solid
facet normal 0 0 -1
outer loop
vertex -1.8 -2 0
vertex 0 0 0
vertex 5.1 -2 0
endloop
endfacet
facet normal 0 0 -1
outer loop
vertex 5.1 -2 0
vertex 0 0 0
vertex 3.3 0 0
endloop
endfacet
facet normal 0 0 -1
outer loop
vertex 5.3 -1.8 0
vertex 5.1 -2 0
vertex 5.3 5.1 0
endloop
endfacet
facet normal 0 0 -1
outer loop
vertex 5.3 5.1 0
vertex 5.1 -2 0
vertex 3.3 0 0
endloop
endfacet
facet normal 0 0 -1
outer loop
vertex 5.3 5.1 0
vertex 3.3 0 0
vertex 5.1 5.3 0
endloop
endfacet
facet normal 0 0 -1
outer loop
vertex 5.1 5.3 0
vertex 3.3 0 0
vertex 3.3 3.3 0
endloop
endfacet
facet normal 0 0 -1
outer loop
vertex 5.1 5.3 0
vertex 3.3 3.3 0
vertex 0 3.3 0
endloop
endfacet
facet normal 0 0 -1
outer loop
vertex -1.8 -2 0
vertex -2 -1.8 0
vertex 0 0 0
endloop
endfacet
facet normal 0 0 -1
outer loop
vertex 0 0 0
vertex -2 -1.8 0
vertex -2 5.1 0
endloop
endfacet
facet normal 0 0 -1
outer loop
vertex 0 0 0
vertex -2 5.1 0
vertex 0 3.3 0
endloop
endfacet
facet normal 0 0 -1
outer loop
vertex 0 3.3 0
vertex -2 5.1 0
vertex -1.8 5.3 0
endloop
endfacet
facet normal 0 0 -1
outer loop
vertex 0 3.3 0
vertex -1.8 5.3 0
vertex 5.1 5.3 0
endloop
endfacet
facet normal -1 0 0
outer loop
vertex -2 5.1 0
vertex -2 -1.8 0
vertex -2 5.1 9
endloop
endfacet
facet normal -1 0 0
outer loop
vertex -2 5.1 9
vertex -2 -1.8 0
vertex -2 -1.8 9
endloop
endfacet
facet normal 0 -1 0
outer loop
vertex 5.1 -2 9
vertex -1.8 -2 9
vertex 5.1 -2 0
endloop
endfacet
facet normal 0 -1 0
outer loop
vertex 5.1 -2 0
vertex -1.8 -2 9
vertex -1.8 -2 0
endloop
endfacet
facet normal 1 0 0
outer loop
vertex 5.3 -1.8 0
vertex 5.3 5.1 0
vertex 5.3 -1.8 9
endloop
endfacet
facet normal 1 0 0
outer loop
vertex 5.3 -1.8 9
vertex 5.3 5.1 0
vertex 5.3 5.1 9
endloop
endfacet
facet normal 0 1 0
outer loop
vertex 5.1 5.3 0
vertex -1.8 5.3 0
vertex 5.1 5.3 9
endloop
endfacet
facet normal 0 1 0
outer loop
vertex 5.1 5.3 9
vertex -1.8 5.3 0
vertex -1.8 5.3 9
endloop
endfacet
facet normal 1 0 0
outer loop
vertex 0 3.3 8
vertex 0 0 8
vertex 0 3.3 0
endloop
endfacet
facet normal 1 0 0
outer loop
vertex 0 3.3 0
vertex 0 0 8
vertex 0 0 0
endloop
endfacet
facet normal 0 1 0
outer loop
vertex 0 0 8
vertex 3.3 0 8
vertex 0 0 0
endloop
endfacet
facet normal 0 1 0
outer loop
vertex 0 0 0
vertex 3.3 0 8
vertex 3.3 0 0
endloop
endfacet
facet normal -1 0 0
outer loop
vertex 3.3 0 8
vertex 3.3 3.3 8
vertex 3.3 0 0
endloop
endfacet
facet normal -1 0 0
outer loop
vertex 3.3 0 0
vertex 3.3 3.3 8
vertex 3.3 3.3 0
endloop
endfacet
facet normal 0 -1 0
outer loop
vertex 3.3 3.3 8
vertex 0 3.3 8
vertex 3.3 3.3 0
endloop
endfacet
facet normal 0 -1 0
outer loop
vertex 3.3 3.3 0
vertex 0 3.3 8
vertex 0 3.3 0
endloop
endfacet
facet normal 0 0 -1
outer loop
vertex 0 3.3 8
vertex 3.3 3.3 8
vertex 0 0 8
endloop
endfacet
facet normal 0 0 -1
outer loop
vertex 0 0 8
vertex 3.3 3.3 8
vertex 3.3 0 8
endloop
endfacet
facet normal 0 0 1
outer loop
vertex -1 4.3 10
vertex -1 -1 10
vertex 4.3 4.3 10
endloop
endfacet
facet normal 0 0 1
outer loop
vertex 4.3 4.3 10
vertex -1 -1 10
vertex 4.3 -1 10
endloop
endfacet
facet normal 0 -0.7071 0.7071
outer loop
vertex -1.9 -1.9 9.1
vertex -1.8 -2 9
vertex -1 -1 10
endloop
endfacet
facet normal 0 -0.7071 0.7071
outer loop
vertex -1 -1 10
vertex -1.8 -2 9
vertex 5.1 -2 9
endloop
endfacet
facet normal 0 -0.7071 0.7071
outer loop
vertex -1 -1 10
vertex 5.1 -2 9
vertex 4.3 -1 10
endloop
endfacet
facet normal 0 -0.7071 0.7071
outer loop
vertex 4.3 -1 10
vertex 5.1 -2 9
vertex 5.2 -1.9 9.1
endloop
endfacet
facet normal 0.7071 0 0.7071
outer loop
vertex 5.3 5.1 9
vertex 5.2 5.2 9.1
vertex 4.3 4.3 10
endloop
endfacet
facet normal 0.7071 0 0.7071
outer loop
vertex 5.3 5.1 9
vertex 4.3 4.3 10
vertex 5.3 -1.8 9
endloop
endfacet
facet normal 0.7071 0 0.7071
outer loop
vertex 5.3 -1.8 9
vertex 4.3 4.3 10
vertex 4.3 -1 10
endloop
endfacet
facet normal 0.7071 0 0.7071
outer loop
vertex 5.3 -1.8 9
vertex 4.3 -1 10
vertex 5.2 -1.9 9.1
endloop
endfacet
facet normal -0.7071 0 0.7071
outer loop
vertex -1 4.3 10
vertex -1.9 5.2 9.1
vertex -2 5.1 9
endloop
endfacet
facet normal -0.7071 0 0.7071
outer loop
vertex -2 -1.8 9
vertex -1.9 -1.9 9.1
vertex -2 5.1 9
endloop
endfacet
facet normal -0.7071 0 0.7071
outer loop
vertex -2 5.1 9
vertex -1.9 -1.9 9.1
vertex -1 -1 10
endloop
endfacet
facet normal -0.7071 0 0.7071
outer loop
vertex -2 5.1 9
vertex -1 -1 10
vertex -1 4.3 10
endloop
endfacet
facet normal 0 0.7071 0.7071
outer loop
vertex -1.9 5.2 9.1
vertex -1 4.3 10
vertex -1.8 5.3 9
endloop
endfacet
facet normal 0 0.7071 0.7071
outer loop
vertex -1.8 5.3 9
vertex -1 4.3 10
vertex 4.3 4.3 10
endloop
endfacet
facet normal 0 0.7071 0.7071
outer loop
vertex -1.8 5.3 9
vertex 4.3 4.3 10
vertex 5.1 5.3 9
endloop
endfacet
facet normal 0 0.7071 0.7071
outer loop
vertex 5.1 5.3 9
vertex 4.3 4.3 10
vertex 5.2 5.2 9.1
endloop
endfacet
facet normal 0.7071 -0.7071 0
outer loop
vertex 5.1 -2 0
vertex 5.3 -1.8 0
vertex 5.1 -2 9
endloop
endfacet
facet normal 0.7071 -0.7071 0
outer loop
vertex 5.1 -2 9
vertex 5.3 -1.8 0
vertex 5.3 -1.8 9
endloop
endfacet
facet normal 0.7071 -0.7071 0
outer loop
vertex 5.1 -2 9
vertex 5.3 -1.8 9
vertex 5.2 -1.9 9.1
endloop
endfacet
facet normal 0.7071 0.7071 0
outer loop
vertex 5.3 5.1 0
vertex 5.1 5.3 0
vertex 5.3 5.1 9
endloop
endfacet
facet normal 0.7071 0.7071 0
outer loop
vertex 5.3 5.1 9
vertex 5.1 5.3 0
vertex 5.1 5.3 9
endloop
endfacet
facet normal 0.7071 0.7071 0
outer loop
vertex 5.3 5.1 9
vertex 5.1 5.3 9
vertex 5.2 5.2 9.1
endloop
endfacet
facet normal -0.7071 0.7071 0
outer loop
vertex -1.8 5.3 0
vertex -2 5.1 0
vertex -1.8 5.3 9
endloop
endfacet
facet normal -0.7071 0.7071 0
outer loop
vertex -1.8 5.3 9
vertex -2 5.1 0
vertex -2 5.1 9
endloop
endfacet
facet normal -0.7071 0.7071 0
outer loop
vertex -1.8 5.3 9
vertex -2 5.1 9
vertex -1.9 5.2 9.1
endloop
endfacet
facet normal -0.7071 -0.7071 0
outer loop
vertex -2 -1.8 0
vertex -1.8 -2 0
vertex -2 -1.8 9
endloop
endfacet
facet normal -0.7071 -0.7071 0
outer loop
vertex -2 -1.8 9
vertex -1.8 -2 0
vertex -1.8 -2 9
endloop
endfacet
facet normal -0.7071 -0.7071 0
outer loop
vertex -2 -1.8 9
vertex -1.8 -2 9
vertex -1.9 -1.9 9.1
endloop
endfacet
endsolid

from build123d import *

# Parameters (mm, degrees)
SKETCH1_W           = 7.3
SKETCH1_H           = 7.3
SKETCH1_W_2         = 3.3
SKETCH1_H_2         = 3.3
BOSS_EXTRUDE1_DEPTH = 8
SKETCH3_W           = 7.3
SKETCH3_H           = 7.3
BOSS_EXTRUDE2_DEPTH = 2
CHAMFER1_SIZE       = 1
CHAMFER2_SIZE       = 0.2


with BuildPart() as part:
    # Sketch1 → Boss-Extrude1 (new body)
    with BuildSketch(Plane.XY):
        with Locations((1.65, 1.65)):
            Rectangle(SKETCH1_W, SKETCH1_H)
        with Locations((1.65, 1.65)):
            Rectangle(SKETCH1_W_2, SKETCH1_H_2, mode=Mode.SUBTRACT)
    extrude(amount=BOSS_EXTRUDE1_DEPTH)

    # Sketch3 → Boss-Extrude2 (add)
    with BuildSketch(Plane.XY.offset(8)):
        with Locations((1.65, 1.65)):
            Rectangle(SKETCH3_W, SKETCH3_H)
    extrude(amount=BOSS_EXTRUDE2_DEPTH)

    # Chamfer1
    chamfer1_edges = [part.edges().sort_by_distance(p)[0] for p in [
        (-2, 1.65, 10),
        (1.65, -2, 10),
        (5.3, 1.65, 10),
        (1.65, 5.3, 10),
    ]]
    chamfer(chamfer1_edges, length=CHAMFER1_SIZE)

    # Chamfer2
    chamfer2_edges = [part.edges().sort_by_distance(p)[0] for p in [
        (-2, 5.3, 4.5),
        (5.3, 5.3, 4.5),
        (5.3, -2, 4.5),
        (-2, -2, 4.5),
    ]]
    chamfer(chamfer2_edges, length=CHAMFER2_SIZE)


solid = part.part
